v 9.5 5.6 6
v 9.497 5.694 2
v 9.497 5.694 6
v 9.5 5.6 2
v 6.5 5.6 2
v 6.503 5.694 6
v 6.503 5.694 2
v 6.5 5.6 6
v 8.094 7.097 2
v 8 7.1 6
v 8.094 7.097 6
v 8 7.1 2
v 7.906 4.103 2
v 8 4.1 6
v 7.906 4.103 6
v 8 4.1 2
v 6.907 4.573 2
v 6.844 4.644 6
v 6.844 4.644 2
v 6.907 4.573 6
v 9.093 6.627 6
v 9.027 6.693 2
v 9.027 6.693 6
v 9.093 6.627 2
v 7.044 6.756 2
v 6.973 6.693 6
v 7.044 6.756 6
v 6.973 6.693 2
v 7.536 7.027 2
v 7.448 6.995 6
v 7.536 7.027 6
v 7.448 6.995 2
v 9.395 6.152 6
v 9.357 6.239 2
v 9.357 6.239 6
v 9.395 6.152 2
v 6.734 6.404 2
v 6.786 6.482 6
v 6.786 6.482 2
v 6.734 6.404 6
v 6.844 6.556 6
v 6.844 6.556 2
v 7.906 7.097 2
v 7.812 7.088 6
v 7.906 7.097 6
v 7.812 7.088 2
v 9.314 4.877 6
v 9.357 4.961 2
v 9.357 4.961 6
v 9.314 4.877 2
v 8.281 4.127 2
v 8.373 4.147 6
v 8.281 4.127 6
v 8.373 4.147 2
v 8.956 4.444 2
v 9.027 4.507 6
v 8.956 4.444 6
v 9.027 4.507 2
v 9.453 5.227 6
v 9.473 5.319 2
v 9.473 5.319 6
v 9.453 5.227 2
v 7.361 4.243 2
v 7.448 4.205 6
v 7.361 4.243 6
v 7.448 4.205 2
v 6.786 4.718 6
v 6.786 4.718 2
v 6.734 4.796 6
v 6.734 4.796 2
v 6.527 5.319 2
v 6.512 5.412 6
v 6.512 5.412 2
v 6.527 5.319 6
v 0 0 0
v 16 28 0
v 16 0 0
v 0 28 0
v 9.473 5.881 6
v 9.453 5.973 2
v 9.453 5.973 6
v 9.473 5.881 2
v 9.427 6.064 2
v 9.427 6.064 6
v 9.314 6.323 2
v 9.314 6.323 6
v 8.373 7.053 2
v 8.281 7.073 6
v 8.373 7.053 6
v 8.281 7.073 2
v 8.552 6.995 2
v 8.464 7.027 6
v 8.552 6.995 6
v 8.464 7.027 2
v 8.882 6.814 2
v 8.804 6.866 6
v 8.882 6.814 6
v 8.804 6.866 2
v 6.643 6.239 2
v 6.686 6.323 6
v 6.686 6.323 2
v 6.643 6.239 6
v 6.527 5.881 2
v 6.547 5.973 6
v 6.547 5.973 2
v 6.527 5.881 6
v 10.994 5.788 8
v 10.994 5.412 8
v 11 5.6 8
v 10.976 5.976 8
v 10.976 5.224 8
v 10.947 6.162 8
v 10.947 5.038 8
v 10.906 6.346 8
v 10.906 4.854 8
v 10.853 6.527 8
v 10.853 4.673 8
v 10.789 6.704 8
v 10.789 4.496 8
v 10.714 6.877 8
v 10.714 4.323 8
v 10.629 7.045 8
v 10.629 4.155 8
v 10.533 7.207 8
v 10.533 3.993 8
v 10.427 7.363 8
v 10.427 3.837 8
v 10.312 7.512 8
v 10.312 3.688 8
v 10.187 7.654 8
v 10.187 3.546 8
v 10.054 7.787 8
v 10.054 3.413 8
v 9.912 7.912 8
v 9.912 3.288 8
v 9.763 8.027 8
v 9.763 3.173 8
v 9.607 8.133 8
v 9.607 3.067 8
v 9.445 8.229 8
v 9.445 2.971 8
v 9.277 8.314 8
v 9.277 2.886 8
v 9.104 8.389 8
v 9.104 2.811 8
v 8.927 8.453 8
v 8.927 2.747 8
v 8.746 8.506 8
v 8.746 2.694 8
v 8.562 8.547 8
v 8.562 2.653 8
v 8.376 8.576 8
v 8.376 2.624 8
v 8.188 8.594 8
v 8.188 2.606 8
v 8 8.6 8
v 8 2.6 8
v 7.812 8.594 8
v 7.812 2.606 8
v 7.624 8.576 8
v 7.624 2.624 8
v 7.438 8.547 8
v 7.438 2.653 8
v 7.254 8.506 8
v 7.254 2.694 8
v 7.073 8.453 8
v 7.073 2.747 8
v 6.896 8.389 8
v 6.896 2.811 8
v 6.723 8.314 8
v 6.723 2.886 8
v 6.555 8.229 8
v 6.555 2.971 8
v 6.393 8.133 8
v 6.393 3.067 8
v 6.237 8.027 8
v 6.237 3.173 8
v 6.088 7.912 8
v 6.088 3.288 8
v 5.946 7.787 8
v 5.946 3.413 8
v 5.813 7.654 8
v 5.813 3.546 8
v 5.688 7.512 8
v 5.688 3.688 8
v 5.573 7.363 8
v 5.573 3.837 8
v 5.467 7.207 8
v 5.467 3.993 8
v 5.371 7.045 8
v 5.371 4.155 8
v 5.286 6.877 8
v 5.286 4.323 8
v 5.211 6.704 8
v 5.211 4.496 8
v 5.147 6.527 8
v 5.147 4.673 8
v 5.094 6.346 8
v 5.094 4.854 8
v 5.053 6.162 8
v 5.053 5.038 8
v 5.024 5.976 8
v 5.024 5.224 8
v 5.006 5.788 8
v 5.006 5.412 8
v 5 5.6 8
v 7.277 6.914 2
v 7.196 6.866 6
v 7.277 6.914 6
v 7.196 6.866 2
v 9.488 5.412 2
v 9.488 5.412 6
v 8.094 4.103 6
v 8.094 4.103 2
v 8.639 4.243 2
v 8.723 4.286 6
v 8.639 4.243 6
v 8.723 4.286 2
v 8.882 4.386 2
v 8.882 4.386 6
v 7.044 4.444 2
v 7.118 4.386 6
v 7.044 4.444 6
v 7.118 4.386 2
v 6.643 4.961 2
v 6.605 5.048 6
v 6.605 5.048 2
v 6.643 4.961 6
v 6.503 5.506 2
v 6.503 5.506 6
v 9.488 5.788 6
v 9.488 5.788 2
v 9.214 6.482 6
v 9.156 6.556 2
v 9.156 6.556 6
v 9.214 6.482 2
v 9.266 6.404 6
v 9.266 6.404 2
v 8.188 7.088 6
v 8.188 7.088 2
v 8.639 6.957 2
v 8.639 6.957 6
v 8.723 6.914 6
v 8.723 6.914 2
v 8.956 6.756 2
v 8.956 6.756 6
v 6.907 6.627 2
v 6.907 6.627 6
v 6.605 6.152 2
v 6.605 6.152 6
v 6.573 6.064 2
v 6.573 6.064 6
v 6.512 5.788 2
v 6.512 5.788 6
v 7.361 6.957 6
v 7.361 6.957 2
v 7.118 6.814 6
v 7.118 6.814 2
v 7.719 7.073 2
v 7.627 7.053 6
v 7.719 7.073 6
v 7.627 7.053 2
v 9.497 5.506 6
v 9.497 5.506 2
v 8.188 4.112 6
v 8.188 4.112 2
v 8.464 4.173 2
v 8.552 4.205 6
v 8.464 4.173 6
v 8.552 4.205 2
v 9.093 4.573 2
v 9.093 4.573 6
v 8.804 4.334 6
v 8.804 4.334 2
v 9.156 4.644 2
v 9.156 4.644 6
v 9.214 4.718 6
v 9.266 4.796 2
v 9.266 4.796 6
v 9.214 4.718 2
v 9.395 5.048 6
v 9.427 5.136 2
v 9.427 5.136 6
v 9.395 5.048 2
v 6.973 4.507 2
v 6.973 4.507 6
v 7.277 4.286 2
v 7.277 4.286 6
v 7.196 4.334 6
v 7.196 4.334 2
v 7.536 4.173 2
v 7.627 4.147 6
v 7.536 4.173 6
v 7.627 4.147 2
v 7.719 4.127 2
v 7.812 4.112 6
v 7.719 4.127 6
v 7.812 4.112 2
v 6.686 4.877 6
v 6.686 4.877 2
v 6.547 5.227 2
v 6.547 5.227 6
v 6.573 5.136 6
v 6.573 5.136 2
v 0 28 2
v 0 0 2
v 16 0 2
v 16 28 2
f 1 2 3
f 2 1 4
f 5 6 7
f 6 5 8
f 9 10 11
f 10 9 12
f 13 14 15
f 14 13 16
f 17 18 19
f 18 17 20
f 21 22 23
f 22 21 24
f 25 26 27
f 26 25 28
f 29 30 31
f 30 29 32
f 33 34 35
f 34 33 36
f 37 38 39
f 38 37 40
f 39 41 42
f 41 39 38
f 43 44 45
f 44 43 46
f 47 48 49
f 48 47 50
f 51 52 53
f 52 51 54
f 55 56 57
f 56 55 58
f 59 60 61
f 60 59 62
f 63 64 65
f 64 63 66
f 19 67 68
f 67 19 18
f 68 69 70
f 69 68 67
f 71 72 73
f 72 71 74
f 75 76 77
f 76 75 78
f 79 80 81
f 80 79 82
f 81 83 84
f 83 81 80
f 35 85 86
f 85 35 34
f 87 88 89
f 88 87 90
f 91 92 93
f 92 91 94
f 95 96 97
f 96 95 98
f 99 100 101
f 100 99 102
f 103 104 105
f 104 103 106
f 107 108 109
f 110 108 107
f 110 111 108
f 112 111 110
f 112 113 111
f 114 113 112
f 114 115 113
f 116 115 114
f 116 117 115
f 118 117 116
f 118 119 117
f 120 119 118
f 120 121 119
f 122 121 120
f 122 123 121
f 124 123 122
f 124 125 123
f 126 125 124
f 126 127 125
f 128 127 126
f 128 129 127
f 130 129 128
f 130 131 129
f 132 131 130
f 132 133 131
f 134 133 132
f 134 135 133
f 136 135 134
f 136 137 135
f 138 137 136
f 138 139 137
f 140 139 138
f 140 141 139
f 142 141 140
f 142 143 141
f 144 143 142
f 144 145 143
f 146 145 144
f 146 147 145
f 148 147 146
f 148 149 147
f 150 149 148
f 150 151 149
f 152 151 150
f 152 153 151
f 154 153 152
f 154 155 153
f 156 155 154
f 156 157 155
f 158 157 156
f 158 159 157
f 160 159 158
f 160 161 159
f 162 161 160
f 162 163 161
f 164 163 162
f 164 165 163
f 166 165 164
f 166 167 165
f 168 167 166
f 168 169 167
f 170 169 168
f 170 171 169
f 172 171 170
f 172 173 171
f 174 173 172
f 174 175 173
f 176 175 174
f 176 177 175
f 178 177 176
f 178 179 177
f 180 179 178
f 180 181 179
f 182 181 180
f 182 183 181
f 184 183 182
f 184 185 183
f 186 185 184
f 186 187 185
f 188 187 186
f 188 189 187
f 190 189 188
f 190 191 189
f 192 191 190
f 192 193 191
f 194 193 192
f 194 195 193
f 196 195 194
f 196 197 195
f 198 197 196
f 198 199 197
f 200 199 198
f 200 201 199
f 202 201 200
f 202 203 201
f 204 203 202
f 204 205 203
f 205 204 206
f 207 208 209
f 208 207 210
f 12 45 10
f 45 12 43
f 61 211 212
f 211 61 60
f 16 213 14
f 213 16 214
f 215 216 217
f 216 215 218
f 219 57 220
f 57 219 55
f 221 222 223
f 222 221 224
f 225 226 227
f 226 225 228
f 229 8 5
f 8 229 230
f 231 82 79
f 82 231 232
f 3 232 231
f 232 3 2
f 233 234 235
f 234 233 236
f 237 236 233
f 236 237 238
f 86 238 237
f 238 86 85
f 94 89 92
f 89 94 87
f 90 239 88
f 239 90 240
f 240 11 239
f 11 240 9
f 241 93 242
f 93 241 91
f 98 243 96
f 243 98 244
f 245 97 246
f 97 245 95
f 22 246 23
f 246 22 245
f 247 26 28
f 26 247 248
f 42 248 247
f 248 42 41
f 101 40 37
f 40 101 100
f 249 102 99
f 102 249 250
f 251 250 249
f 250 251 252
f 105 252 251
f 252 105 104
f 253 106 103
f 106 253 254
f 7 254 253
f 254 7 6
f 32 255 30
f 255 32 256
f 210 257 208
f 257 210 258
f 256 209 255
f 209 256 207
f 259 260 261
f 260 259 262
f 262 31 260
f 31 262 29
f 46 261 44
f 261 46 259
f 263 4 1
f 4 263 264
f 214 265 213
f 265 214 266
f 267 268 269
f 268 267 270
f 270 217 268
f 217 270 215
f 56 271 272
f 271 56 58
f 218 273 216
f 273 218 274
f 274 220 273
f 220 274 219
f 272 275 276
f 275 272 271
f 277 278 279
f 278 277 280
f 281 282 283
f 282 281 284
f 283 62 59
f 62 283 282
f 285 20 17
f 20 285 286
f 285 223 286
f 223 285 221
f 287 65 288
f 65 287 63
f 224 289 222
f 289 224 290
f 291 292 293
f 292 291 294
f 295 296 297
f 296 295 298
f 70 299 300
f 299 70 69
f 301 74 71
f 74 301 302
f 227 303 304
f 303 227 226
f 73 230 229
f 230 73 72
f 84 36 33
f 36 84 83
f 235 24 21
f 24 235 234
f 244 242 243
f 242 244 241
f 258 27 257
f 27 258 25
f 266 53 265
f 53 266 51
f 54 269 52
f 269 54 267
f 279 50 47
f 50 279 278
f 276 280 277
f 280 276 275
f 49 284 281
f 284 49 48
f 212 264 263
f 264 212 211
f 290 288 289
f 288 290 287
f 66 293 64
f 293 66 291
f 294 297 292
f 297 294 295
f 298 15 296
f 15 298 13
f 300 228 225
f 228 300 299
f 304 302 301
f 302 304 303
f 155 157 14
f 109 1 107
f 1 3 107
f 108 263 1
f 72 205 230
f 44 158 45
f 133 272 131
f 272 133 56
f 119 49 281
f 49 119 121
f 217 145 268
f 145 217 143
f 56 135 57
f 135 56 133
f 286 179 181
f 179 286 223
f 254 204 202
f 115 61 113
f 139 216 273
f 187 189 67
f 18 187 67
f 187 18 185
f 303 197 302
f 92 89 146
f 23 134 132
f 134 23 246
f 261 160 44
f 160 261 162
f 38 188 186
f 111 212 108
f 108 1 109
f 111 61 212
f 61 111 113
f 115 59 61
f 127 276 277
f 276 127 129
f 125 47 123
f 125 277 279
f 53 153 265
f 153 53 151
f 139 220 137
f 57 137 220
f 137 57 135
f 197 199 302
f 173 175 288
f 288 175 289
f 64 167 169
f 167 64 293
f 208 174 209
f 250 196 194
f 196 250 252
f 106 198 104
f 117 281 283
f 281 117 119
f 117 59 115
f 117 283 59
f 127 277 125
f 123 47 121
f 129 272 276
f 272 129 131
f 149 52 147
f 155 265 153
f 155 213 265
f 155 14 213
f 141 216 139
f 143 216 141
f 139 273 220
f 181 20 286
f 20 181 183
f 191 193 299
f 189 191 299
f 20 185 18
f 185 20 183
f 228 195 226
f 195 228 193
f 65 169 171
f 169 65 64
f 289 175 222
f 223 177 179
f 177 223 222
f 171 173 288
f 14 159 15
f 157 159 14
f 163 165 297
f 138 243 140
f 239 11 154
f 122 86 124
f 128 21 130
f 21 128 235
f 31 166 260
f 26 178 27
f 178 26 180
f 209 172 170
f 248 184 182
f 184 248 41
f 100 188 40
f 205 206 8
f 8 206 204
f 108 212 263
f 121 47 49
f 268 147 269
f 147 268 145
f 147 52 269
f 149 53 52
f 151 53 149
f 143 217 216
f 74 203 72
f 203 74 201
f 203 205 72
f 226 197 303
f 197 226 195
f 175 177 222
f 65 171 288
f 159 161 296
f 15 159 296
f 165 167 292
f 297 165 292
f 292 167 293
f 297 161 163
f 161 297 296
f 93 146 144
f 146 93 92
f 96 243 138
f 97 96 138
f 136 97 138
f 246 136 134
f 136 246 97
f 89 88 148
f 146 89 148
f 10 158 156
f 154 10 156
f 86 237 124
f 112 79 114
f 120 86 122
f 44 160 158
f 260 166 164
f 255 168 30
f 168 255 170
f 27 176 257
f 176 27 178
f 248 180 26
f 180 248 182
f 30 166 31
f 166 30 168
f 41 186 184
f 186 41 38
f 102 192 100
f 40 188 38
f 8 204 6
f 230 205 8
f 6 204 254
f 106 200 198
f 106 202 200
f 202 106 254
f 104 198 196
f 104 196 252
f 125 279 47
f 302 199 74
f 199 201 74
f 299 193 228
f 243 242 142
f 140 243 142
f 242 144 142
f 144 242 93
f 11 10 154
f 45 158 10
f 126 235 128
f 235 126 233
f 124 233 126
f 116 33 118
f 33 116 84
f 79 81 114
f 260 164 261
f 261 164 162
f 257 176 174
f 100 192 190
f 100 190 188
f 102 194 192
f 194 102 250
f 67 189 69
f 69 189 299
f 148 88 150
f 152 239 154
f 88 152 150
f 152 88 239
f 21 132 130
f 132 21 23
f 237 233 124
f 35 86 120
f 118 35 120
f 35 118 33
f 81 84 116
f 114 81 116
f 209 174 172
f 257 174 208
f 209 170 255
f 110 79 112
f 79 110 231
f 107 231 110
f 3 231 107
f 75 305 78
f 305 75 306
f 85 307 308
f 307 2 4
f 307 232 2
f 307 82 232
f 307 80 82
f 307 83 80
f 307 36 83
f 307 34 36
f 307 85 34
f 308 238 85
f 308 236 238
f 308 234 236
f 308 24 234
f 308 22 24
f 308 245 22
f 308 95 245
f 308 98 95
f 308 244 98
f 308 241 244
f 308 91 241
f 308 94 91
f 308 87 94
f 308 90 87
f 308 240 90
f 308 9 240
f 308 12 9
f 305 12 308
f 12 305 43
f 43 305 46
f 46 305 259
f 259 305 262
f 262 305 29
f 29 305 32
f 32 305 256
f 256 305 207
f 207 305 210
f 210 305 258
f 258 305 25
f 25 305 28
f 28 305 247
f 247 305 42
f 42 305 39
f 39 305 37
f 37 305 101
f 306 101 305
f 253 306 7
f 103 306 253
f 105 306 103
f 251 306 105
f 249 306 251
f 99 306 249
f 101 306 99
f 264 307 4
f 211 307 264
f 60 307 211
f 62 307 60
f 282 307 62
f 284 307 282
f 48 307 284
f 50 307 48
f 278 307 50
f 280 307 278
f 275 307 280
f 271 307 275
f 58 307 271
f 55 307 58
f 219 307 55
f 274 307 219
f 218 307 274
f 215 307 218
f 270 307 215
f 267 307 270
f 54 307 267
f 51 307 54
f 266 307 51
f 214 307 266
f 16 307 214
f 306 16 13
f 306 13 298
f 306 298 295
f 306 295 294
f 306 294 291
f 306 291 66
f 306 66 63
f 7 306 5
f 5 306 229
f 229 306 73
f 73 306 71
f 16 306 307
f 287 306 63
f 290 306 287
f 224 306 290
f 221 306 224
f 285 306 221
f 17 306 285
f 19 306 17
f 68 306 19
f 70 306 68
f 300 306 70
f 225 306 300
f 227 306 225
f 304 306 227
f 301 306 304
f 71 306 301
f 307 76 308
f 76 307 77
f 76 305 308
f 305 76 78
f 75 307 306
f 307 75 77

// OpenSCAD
//CUSTOMIZER VARIABLES

// bolt_length: the length of the entire bolt from the base to tip
// bolt_clearance: the length of the narrow part of the bolt
// head_dia:  the diameter of the widest point on the bolt, at the end
// shaft_dia: the diameter of the rest of the bolt
//
// all measurements are in mm

//	bolt length, mm
bolt_length = 6;	//	[5:10]

//	bolt clearance, mm
bolt_clearance = 4;	//	[5:10]

//	head diameter, mm
head_dia = 6;	//	[5:30]

//	shaft diameter, mm
shaft_dia = 3;	//	[3:20]

//CUSTOMIZER VARIABLES END

plate_thickness = 2;
plate_width     = 16;
plate_height    = 28;

// Render fineness
$fn = 100;

// Maybe add some stuff for sticker size?

cube([plate_width, plate_height, plate_thickness]);
translate([plate_width/2, plate_height * 0.2, 0]){
    cylinder(h=bolt_length + plate_thickness, r=shaft_dia/2);
    
    translate([0, 0, bolt_clearance + plate_thickness ]){
        cylinder(h=bolt_length - bolt_clearance, r1=shaft_dia/2, r2=head_dia/2);
    }
}
